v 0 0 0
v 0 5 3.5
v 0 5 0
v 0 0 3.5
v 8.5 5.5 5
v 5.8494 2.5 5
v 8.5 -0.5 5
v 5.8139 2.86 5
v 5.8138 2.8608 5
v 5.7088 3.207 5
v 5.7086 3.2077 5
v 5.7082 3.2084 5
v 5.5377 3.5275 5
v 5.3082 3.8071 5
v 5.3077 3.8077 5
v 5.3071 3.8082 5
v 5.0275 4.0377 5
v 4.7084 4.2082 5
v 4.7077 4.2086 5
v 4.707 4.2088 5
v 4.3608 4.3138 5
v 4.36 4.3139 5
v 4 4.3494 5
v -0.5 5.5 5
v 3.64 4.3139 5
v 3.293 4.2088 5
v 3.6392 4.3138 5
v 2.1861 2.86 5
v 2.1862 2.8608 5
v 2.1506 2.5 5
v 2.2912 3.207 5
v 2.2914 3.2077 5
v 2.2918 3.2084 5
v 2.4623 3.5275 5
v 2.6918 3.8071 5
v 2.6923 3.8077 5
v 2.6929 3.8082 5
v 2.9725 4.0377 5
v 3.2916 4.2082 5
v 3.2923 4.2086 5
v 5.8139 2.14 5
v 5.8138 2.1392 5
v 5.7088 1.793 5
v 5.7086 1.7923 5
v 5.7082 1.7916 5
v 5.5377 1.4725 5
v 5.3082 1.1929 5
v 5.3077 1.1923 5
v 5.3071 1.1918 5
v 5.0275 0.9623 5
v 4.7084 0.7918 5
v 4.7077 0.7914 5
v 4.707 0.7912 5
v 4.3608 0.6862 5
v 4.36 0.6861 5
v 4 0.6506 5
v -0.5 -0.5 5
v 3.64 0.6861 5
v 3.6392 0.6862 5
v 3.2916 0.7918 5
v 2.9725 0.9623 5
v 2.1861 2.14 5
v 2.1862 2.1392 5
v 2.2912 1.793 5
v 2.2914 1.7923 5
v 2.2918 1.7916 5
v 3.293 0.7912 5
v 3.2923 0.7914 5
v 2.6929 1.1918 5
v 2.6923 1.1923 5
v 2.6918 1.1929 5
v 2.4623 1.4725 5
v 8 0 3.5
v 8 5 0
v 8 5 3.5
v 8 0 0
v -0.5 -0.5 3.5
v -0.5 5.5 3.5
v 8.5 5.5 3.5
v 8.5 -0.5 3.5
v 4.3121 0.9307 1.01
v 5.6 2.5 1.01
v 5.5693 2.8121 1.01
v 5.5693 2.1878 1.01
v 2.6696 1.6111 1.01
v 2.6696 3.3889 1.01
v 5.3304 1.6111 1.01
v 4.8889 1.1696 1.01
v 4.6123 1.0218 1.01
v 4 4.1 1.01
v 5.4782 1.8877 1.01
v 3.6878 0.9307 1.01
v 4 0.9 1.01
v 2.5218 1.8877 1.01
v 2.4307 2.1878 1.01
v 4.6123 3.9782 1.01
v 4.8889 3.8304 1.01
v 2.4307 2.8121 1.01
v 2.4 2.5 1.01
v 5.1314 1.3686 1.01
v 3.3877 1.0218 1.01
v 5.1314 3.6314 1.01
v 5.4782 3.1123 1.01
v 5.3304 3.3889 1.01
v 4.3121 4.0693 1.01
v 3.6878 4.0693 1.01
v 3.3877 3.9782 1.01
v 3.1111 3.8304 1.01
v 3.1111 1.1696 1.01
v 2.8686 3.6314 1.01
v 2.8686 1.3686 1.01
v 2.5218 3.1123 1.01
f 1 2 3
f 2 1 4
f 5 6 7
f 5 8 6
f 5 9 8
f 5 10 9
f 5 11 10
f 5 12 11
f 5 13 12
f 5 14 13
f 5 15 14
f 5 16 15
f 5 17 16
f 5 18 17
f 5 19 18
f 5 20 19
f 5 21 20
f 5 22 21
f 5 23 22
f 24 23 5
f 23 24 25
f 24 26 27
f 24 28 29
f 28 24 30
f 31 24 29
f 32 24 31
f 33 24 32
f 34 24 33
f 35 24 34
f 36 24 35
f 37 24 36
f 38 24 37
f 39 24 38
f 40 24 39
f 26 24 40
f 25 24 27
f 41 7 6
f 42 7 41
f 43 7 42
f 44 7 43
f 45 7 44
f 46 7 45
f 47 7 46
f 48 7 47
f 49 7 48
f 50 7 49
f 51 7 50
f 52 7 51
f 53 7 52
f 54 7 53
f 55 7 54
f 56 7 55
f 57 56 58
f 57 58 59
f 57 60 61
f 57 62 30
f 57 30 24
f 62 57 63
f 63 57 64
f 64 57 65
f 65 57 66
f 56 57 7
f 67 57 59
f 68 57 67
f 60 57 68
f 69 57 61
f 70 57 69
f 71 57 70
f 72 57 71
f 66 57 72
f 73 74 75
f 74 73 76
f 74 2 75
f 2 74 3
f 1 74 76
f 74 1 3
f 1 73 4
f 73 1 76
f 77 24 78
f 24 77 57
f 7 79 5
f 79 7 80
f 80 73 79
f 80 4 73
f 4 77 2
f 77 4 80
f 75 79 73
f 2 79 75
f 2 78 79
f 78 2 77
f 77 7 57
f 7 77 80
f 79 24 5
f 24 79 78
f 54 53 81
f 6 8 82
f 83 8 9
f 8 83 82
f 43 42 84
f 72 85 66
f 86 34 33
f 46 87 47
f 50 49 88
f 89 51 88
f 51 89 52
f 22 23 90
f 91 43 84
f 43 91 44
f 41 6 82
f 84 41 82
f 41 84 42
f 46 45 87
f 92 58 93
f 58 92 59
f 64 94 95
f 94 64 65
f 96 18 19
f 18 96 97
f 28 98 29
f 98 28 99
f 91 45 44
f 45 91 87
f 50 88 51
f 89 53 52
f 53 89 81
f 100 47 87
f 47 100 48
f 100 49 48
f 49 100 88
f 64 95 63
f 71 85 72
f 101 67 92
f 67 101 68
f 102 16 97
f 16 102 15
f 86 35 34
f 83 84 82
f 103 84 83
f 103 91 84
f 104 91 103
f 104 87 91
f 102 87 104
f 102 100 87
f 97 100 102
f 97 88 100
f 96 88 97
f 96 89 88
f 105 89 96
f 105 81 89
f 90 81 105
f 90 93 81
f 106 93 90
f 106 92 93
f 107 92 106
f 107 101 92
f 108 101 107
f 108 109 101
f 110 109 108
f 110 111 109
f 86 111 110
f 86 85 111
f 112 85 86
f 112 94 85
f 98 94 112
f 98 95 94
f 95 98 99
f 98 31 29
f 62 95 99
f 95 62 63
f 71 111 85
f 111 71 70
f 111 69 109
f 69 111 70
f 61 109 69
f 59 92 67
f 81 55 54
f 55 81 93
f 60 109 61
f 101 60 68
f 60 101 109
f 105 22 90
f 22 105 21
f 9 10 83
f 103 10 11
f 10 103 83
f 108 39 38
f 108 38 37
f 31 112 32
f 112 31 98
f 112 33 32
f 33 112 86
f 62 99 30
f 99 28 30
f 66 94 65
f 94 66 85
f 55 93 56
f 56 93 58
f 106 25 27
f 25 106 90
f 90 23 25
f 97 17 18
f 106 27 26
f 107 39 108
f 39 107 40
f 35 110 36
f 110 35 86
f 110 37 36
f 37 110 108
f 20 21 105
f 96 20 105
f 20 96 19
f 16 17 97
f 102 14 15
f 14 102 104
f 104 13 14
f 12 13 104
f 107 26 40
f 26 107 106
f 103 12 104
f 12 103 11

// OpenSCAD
// keyTop3

keyTopWidth = 8.0;
keyTopHeight = 5.0;
keyTopThickness = 5.0;

keyTopHole1 = 3.2;
keyTopHole2 = 3.7;
keyTopHoleDepth = 4.0;
keyTopRimZOffset = 3.5;
rimSize = 0.5;

module keyTop() {
    keyTopZoffset = keyTopThickness - keyTopHoleDepth;
    difference() {
        union() {
            cube([keyTopWidth, keyTopHeight, keyTopThickness]);
            translate([-rimSize, -rimSize, keyTopRimZOffset])
                cube([keyTopWidth + rimSize * 2, 
                    keyTopHeight + rimSize * 2, keyTopThickness - keyTopRimZOffset]);
        }
        translate([keyTopWidth / 2, keyTopHeight / 2, keyTopZoffset+ 0.01])
            cylinder(d1 = keyTopHole1, d2 = keyTopHole2, h = keyTopHoleDepth, $fn = 32);
    }
}

keyTop();
